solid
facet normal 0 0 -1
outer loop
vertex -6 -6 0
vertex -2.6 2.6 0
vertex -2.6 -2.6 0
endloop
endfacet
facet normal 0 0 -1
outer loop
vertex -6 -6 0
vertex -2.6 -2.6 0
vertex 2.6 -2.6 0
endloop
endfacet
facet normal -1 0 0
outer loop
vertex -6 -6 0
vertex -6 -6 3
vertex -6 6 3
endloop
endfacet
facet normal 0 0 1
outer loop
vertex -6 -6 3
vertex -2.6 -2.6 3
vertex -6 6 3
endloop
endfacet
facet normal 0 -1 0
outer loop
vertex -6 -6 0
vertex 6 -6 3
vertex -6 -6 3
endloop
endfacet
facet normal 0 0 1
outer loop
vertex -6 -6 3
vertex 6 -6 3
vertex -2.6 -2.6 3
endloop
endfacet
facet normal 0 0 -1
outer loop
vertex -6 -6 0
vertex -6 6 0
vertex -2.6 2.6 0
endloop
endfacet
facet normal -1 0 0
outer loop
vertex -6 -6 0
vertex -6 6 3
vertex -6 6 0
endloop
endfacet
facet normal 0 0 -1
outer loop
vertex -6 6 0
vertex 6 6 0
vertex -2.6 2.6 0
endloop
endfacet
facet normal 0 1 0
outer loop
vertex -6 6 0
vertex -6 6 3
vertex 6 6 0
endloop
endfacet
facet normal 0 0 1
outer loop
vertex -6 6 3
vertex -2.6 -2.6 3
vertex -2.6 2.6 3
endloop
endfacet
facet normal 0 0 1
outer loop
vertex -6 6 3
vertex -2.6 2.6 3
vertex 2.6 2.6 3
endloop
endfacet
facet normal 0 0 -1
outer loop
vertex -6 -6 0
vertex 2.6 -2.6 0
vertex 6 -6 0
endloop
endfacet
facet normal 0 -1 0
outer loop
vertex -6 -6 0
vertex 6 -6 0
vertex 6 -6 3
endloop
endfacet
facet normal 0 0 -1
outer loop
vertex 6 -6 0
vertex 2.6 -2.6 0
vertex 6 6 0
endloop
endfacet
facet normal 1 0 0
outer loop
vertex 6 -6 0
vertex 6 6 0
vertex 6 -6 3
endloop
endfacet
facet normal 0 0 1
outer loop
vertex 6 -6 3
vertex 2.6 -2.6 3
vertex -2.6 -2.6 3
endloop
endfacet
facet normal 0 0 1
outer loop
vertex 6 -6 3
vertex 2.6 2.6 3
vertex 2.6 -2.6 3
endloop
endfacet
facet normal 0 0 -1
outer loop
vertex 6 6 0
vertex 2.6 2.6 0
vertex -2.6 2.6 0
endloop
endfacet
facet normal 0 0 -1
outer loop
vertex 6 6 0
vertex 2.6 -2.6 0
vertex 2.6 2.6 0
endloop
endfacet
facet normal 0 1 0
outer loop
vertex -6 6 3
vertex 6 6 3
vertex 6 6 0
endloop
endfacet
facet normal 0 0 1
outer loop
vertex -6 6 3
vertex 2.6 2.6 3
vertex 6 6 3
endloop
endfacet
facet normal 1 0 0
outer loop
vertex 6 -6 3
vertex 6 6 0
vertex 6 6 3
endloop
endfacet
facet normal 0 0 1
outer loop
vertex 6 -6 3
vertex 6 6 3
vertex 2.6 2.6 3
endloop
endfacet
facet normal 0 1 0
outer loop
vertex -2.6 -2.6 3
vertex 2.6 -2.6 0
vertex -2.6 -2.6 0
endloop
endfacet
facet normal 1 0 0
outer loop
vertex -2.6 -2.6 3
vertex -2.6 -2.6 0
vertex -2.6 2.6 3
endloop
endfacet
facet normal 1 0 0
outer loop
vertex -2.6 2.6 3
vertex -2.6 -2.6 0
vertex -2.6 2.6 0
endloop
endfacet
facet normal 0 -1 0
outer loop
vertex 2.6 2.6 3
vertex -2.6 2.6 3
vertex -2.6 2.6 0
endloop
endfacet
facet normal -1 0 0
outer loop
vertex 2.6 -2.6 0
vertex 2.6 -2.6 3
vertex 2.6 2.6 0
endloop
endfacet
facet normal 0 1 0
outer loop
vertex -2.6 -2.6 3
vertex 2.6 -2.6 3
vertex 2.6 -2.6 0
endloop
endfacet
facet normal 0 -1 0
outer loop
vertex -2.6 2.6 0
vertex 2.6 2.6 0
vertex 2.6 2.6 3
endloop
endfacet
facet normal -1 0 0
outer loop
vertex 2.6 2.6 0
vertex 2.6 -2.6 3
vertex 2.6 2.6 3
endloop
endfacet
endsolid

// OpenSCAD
$fn = 50;

difference() {
	union() {
		translate(v = [0, 0, 0]) {
			rotate(a = [0, 0, 0]) {
				difference() {
					union() {
						translate(v = [-6.0, -6.0, 0]) {
							cube(size = [12.0, 12.0, 3.0]);
						}
					}
					union() {
						translate(v = [-2.6, -2.6, -0.1]) {
							cube(size = [5.2, 5.2, 3.2]);
						}
					}
				}
			}
		}
	}
	union();
}
